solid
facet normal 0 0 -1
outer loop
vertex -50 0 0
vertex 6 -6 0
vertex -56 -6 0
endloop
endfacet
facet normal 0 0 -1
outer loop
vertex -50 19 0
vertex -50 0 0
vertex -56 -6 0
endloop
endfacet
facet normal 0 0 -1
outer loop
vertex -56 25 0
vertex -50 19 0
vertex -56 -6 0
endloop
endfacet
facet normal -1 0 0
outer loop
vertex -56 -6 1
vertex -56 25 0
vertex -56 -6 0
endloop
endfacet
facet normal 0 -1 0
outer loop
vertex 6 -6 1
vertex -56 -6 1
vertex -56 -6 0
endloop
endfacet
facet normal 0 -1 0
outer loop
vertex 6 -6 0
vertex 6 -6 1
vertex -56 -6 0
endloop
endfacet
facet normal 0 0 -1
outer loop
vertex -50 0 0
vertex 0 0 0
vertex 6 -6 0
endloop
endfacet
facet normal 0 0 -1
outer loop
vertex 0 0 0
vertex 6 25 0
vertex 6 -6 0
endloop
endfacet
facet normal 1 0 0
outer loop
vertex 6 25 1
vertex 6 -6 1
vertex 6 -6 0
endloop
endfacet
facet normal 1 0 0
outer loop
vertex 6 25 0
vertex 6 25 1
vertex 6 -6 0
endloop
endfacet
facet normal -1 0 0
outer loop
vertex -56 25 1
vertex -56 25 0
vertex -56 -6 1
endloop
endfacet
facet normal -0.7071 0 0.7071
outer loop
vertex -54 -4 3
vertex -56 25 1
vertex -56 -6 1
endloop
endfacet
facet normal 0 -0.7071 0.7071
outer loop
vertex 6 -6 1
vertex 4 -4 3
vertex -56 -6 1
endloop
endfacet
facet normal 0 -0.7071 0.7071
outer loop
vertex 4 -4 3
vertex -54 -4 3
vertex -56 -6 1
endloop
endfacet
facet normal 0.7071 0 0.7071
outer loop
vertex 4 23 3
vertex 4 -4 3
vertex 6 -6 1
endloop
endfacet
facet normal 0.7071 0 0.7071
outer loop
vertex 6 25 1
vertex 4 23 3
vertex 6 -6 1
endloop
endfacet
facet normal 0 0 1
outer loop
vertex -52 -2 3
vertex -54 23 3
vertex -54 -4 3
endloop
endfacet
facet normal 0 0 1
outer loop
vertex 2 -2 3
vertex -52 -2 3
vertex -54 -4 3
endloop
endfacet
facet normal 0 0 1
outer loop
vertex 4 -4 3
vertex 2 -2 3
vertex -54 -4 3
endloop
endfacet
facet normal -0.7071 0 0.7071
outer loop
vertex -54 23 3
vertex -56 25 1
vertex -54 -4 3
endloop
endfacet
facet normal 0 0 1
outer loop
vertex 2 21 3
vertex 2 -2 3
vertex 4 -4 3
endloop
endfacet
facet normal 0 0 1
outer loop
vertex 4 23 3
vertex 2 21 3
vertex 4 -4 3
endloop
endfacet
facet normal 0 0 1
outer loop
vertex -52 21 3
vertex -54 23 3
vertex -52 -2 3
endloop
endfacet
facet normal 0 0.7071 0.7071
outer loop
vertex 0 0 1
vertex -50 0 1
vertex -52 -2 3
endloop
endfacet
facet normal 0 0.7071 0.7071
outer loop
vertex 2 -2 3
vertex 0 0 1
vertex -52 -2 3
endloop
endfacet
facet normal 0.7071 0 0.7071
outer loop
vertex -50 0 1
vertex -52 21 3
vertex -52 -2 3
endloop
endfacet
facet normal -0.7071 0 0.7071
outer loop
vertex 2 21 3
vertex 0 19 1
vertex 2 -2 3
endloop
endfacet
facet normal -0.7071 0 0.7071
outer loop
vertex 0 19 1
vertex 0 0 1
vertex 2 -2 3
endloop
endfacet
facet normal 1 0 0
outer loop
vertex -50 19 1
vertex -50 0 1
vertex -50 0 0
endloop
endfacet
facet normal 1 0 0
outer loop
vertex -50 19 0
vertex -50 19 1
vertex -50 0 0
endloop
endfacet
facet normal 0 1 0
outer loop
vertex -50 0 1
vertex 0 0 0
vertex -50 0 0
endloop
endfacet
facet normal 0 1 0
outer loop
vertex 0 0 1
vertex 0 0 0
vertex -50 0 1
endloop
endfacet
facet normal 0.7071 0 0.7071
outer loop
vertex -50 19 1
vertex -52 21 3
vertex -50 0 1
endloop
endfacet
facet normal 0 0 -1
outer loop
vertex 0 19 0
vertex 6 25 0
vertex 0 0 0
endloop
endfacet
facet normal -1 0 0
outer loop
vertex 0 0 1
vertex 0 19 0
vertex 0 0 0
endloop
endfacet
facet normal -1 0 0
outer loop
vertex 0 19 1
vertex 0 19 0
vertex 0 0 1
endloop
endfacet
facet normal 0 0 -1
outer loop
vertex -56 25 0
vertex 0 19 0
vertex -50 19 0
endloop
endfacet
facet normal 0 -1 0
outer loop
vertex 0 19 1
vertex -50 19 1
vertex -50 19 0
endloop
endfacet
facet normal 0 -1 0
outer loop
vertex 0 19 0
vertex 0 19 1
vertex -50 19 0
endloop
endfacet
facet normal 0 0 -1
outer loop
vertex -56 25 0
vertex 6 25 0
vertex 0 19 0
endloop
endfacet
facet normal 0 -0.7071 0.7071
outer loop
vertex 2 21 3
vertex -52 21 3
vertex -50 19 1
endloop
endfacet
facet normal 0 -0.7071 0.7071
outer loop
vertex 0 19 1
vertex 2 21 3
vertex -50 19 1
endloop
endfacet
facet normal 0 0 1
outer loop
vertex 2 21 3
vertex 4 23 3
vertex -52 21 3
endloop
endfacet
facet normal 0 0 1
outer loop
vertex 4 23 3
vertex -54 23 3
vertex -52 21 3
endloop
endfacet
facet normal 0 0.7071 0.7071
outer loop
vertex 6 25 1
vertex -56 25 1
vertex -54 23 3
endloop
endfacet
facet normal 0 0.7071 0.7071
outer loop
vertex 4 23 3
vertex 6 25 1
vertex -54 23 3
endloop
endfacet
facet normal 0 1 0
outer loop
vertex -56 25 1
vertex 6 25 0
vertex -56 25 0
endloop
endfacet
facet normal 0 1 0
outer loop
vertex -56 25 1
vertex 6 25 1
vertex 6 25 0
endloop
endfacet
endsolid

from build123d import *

# Parameters (mm, degrees)
ESQUISSE1_W        = 62
ESQUISSE1_H        = 31
ESQUISSE1_W_2      = 50
ESQUISSE1_H_2      = 19
BOSS_EXTRU_1_DEPTH = 3
CHANFREIN1_SIZE    = 2


with BuildPart() as part:
    # Esquisse1 → Boss.-Extru.1 (new body)
    with BuildSketch(Plane.XY):
        with Locations((-25, 9.5)):
            Rectangle(ESQUISSE1_W, ESQUISSE1_H)
        with Locations((-25, 9.5)):
            Rectangle(ESQUISSE1_W_2, ESQUISSE1_H_2, mode=Mode.SUBTRACT)
    extrude(amount=BOSS_EXTRU_1_DEPTH)

    # Chanfrein1
    chanfrein1_edges = [part.edges().sort_by_distance(p)[0] for p in [
        (-56, 9.5, 3),
        (-25, -6, 3),
        (0, 9.5, 3),
        (-25, 19, 3),
        (-50, 9.5, 3),
        (-25, 0, 3),
        (6, 9.5, 3),
        (-25, 25, 3),
    ]]
    chamfer(chanfrein1_edges, length=CHANFREIN1_SIZE)


solid = part.part
